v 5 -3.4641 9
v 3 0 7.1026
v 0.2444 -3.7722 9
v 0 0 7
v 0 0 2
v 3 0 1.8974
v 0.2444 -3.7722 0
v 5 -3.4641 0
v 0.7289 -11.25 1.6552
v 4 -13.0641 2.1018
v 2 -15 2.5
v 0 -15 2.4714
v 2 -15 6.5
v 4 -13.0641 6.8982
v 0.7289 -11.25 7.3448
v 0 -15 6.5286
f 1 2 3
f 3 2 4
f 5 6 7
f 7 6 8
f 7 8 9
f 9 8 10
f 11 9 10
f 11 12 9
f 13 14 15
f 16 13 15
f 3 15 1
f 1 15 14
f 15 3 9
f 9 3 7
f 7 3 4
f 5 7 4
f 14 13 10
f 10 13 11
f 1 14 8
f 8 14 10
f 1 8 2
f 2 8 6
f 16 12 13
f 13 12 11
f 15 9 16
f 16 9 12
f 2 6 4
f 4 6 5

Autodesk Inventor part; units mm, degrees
ref_plane "YZ Plane" through (0, 0, 0) normal (1, 0, 0) x (0, 1, 0)
ref_plane "XZ Plane" through (0, 0, 0) normal (0, 1, 0) x (-1, 0, 0)
ref_plane "XY Plane" through (0, 0, 0) normal (0, 0, 1) x (1, 0, 0)
sketch "Base" plane through (0, 0, 0) normal (0, 0, 1) x (1, 0, 0)
  line L0 (0, 0) -> (0, -15) construction
  line L1 (0, -15) -> (2, -15)
  line L2 (2, -15) -> (4, -13.0641)
  line L3 (5, -3.4641) -> (3, 0)
  line L4 (3, 0) -> (0, 0)
  line L5 (4, -13.0641) -> (5, -3.4641)
  line L6 (0, -15) -> (0.7289, -11.25)
  line L7 (0.7289, -11.25) -> (0, 0)
  dimension "d0" = 15
  dimension "d1" = 3
  dimension "d2" = 2
  dimension "d3" = 5
  dimension "d8" = 4
  dimension "d12" = 120
  dimension "d14" = 9.6
  dimension "d23" = 11.25
  dimension "d24" = 79
extrude "BaseFeature" add sketch "Base" along normal blind 9
sketch "TopProfile" plane through (0.7289, -11.25, 0) normal (-0.9979, -0.0647, 0) x (0, 0, 1)
  line L0 (0, 7.4934) -> (9, 7.4934) projected
  line L1 (2, 11.2736) -> (7, 11.2736)
  line L2 (7, 11.2736) -> (9, 7.4934)
  line L3 (9, 7.4934) -> (6.5, -3.8243)
  line L4 (6.5, -3.8243) -> (2.5, -3.8243)
  line L5 (2.5, -3.8243) -> (0, 7.4934)
  line L6 (0, 7.4934) -> (2, 11.2736)
  line L7 (0, 11.2736) -> (9, 11.2736) projected
  line L8 (0, -3.8243) -> (9, -3.8243) projected
  point P0 (4.5, 11.2736)
  point P1 (4.5, -3.8243)
  dimension "d27" = 5
  dimension "d28" = 4
extrude "TopProfileFeature" cut sketch "TopProfile" along normal through all both and the other way through all keep common part
equation "\"d14\" = 0.64 * d0"
equation "\"d23\" = 0.75 * d0"
properties part number "DistalPhalangeIndexMiddle"
